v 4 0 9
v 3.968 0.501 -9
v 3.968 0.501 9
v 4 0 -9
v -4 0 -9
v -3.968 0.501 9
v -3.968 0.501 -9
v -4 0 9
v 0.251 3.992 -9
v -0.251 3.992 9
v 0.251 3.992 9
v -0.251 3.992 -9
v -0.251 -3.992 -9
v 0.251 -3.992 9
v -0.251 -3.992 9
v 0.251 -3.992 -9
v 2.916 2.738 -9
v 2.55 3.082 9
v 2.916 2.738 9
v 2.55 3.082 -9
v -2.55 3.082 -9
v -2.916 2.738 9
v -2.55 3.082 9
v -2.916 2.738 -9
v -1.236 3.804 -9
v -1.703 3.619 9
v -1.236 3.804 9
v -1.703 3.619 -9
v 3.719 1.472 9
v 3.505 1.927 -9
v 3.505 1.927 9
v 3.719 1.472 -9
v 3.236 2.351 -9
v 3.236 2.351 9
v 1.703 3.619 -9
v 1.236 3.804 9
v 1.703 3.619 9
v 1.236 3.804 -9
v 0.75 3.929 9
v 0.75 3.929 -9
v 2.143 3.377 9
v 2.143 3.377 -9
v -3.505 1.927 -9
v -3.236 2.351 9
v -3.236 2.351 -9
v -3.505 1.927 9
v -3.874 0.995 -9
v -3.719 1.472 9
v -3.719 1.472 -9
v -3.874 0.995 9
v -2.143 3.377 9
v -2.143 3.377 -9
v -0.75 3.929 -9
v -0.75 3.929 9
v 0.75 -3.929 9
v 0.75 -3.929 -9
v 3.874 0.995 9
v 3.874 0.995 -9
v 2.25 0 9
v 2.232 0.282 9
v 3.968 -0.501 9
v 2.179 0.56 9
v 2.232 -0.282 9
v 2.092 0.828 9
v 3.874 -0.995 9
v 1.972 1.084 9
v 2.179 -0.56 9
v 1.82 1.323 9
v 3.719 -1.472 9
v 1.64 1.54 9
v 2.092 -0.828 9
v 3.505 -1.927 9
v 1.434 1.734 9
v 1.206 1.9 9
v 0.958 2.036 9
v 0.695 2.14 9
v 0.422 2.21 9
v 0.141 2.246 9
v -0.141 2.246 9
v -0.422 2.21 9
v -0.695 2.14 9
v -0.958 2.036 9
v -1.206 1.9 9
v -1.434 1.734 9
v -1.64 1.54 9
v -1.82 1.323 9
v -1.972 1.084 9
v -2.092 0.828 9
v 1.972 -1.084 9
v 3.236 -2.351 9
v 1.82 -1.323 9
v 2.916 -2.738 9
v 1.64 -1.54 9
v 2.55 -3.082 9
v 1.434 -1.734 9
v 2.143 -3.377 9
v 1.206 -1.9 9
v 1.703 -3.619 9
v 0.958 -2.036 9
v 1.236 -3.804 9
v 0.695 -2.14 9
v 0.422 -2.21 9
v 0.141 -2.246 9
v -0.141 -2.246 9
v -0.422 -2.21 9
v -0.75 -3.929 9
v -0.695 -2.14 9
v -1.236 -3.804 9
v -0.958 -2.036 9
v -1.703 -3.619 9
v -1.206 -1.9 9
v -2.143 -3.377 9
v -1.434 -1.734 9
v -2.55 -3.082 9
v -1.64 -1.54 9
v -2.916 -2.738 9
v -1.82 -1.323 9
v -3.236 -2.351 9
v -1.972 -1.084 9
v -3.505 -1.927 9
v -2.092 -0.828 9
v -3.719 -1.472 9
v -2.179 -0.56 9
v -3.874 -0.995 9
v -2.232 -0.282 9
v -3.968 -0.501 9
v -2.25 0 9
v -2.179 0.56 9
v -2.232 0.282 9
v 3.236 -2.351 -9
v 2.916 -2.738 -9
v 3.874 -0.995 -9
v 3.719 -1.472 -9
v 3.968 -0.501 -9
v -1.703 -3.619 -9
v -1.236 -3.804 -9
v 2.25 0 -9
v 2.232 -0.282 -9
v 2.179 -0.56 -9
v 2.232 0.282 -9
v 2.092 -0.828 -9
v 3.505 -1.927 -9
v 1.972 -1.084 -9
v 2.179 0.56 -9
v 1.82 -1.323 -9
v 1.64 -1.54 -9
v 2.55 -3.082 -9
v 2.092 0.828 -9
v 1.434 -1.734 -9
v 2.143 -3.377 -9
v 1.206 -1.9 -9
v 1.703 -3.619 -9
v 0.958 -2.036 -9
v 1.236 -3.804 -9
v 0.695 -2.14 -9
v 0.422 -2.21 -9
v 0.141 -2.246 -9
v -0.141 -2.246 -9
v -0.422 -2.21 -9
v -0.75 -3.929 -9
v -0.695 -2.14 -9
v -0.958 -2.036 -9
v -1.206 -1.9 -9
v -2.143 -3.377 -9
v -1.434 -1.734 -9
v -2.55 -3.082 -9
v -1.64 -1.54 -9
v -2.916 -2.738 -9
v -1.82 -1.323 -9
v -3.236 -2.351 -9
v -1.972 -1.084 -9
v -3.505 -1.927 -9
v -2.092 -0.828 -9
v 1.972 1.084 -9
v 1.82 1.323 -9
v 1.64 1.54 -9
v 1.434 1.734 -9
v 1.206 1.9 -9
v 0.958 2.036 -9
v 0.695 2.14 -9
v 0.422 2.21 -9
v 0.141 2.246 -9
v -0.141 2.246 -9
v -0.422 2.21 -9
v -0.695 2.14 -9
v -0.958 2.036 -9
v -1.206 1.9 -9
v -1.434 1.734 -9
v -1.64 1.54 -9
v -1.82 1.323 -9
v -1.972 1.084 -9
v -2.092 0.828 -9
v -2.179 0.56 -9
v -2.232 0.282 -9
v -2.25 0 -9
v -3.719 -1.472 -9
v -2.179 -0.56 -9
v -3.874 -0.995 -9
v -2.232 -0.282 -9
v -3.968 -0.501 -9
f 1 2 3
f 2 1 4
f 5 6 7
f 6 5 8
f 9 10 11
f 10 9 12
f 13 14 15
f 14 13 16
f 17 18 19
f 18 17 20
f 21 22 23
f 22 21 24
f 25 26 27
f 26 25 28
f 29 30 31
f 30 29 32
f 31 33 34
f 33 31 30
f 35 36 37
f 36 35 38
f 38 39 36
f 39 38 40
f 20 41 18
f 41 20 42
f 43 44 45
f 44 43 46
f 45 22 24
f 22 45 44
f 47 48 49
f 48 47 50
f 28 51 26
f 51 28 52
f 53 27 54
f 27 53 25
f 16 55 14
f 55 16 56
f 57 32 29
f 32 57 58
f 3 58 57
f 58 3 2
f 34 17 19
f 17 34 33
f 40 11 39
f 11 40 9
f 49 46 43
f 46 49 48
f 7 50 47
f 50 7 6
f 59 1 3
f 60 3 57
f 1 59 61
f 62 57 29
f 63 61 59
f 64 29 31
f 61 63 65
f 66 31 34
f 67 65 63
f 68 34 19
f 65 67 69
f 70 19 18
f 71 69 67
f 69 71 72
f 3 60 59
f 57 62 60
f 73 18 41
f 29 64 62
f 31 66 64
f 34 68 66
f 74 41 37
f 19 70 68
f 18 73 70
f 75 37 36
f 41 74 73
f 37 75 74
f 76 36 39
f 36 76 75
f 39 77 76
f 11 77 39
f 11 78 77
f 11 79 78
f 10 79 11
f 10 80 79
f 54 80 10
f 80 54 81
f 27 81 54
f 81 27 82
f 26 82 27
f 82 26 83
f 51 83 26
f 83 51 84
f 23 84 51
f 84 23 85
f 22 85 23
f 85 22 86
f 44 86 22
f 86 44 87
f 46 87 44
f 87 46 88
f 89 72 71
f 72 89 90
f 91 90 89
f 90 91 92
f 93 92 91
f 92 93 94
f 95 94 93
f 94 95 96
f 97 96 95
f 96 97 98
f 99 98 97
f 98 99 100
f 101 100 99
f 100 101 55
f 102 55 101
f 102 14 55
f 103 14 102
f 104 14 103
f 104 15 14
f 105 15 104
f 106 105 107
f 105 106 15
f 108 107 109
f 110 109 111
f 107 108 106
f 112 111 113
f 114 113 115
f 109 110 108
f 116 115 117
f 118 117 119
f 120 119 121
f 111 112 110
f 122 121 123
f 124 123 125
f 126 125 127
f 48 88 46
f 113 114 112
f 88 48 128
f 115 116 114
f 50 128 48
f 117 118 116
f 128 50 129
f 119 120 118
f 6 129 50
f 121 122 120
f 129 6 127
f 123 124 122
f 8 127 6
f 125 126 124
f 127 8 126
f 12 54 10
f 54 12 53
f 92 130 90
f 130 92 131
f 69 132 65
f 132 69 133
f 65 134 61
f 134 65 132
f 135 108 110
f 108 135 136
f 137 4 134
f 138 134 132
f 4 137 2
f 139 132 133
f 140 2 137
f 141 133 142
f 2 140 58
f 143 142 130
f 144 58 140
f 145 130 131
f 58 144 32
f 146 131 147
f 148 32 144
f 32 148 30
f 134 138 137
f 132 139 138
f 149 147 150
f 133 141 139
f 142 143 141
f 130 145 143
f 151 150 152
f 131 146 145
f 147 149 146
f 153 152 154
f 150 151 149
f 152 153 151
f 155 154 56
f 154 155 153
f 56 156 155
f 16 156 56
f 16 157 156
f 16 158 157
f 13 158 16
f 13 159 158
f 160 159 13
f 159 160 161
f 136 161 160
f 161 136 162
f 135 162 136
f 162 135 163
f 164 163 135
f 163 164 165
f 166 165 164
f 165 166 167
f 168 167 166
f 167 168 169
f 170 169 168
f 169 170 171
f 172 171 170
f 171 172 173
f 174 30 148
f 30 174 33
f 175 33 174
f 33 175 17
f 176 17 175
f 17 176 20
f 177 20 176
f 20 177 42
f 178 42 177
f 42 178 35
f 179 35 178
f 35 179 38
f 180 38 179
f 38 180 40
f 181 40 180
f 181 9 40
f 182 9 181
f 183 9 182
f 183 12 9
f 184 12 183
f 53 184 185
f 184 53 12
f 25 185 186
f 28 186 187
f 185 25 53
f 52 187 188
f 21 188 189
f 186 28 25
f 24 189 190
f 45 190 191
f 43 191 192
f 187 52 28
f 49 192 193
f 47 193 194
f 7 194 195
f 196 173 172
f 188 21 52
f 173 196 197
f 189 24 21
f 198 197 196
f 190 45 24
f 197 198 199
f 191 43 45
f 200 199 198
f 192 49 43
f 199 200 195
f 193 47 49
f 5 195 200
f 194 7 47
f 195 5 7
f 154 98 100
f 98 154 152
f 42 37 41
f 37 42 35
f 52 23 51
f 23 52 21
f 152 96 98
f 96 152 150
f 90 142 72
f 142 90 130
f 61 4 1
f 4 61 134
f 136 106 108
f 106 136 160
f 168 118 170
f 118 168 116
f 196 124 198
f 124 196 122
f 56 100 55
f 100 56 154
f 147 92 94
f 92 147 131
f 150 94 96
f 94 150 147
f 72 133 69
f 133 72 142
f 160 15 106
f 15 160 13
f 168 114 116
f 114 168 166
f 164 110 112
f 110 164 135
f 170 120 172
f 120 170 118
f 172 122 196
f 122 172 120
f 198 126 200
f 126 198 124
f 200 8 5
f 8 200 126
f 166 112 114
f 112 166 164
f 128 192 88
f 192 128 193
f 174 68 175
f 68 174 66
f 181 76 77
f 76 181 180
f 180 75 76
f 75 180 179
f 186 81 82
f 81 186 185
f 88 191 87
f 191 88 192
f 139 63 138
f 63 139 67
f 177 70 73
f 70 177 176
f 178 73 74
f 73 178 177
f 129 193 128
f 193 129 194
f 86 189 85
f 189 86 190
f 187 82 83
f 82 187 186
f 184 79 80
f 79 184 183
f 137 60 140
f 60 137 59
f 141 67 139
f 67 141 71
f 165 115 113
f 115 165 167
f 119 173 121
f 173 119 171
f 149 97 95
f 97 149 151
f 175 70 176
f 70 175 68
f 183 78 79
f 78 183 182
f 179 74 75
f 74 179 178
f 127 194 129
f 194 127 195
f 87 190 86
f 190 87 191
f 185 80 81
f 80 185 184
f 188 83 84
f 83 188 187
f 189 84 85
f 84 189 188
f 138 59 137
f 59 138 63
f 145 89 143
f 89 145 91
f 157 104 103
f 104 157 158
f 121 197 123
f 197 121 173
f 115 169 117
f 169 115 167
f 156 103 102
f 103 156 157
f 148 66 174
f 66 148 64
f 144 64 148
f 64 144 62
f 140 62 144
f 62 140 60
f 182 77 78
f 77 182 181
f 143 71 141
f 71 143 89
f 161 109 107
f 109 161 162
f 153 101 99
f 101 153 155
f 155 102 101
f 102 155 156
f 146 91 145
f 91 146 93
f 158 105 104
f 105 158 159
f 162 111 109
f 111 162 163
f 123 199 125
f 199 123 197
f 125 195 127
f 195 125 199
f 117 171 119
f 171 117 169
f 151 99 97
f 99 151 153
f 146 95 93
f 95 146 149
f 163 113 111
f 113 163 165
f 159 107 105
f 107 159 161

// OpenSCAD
$fn = 50;


difference() {
	union() {
		translate(v = [0, 0, -9.0000000000]) {
			cylinder(h = 18, r = 4.0000000000);
		}
	}
	union() {
		translate(v = [0, 0, -100.0000000000]) {
			cylinder(h = 200, r = 2.2500000000);
		}
	}
}
